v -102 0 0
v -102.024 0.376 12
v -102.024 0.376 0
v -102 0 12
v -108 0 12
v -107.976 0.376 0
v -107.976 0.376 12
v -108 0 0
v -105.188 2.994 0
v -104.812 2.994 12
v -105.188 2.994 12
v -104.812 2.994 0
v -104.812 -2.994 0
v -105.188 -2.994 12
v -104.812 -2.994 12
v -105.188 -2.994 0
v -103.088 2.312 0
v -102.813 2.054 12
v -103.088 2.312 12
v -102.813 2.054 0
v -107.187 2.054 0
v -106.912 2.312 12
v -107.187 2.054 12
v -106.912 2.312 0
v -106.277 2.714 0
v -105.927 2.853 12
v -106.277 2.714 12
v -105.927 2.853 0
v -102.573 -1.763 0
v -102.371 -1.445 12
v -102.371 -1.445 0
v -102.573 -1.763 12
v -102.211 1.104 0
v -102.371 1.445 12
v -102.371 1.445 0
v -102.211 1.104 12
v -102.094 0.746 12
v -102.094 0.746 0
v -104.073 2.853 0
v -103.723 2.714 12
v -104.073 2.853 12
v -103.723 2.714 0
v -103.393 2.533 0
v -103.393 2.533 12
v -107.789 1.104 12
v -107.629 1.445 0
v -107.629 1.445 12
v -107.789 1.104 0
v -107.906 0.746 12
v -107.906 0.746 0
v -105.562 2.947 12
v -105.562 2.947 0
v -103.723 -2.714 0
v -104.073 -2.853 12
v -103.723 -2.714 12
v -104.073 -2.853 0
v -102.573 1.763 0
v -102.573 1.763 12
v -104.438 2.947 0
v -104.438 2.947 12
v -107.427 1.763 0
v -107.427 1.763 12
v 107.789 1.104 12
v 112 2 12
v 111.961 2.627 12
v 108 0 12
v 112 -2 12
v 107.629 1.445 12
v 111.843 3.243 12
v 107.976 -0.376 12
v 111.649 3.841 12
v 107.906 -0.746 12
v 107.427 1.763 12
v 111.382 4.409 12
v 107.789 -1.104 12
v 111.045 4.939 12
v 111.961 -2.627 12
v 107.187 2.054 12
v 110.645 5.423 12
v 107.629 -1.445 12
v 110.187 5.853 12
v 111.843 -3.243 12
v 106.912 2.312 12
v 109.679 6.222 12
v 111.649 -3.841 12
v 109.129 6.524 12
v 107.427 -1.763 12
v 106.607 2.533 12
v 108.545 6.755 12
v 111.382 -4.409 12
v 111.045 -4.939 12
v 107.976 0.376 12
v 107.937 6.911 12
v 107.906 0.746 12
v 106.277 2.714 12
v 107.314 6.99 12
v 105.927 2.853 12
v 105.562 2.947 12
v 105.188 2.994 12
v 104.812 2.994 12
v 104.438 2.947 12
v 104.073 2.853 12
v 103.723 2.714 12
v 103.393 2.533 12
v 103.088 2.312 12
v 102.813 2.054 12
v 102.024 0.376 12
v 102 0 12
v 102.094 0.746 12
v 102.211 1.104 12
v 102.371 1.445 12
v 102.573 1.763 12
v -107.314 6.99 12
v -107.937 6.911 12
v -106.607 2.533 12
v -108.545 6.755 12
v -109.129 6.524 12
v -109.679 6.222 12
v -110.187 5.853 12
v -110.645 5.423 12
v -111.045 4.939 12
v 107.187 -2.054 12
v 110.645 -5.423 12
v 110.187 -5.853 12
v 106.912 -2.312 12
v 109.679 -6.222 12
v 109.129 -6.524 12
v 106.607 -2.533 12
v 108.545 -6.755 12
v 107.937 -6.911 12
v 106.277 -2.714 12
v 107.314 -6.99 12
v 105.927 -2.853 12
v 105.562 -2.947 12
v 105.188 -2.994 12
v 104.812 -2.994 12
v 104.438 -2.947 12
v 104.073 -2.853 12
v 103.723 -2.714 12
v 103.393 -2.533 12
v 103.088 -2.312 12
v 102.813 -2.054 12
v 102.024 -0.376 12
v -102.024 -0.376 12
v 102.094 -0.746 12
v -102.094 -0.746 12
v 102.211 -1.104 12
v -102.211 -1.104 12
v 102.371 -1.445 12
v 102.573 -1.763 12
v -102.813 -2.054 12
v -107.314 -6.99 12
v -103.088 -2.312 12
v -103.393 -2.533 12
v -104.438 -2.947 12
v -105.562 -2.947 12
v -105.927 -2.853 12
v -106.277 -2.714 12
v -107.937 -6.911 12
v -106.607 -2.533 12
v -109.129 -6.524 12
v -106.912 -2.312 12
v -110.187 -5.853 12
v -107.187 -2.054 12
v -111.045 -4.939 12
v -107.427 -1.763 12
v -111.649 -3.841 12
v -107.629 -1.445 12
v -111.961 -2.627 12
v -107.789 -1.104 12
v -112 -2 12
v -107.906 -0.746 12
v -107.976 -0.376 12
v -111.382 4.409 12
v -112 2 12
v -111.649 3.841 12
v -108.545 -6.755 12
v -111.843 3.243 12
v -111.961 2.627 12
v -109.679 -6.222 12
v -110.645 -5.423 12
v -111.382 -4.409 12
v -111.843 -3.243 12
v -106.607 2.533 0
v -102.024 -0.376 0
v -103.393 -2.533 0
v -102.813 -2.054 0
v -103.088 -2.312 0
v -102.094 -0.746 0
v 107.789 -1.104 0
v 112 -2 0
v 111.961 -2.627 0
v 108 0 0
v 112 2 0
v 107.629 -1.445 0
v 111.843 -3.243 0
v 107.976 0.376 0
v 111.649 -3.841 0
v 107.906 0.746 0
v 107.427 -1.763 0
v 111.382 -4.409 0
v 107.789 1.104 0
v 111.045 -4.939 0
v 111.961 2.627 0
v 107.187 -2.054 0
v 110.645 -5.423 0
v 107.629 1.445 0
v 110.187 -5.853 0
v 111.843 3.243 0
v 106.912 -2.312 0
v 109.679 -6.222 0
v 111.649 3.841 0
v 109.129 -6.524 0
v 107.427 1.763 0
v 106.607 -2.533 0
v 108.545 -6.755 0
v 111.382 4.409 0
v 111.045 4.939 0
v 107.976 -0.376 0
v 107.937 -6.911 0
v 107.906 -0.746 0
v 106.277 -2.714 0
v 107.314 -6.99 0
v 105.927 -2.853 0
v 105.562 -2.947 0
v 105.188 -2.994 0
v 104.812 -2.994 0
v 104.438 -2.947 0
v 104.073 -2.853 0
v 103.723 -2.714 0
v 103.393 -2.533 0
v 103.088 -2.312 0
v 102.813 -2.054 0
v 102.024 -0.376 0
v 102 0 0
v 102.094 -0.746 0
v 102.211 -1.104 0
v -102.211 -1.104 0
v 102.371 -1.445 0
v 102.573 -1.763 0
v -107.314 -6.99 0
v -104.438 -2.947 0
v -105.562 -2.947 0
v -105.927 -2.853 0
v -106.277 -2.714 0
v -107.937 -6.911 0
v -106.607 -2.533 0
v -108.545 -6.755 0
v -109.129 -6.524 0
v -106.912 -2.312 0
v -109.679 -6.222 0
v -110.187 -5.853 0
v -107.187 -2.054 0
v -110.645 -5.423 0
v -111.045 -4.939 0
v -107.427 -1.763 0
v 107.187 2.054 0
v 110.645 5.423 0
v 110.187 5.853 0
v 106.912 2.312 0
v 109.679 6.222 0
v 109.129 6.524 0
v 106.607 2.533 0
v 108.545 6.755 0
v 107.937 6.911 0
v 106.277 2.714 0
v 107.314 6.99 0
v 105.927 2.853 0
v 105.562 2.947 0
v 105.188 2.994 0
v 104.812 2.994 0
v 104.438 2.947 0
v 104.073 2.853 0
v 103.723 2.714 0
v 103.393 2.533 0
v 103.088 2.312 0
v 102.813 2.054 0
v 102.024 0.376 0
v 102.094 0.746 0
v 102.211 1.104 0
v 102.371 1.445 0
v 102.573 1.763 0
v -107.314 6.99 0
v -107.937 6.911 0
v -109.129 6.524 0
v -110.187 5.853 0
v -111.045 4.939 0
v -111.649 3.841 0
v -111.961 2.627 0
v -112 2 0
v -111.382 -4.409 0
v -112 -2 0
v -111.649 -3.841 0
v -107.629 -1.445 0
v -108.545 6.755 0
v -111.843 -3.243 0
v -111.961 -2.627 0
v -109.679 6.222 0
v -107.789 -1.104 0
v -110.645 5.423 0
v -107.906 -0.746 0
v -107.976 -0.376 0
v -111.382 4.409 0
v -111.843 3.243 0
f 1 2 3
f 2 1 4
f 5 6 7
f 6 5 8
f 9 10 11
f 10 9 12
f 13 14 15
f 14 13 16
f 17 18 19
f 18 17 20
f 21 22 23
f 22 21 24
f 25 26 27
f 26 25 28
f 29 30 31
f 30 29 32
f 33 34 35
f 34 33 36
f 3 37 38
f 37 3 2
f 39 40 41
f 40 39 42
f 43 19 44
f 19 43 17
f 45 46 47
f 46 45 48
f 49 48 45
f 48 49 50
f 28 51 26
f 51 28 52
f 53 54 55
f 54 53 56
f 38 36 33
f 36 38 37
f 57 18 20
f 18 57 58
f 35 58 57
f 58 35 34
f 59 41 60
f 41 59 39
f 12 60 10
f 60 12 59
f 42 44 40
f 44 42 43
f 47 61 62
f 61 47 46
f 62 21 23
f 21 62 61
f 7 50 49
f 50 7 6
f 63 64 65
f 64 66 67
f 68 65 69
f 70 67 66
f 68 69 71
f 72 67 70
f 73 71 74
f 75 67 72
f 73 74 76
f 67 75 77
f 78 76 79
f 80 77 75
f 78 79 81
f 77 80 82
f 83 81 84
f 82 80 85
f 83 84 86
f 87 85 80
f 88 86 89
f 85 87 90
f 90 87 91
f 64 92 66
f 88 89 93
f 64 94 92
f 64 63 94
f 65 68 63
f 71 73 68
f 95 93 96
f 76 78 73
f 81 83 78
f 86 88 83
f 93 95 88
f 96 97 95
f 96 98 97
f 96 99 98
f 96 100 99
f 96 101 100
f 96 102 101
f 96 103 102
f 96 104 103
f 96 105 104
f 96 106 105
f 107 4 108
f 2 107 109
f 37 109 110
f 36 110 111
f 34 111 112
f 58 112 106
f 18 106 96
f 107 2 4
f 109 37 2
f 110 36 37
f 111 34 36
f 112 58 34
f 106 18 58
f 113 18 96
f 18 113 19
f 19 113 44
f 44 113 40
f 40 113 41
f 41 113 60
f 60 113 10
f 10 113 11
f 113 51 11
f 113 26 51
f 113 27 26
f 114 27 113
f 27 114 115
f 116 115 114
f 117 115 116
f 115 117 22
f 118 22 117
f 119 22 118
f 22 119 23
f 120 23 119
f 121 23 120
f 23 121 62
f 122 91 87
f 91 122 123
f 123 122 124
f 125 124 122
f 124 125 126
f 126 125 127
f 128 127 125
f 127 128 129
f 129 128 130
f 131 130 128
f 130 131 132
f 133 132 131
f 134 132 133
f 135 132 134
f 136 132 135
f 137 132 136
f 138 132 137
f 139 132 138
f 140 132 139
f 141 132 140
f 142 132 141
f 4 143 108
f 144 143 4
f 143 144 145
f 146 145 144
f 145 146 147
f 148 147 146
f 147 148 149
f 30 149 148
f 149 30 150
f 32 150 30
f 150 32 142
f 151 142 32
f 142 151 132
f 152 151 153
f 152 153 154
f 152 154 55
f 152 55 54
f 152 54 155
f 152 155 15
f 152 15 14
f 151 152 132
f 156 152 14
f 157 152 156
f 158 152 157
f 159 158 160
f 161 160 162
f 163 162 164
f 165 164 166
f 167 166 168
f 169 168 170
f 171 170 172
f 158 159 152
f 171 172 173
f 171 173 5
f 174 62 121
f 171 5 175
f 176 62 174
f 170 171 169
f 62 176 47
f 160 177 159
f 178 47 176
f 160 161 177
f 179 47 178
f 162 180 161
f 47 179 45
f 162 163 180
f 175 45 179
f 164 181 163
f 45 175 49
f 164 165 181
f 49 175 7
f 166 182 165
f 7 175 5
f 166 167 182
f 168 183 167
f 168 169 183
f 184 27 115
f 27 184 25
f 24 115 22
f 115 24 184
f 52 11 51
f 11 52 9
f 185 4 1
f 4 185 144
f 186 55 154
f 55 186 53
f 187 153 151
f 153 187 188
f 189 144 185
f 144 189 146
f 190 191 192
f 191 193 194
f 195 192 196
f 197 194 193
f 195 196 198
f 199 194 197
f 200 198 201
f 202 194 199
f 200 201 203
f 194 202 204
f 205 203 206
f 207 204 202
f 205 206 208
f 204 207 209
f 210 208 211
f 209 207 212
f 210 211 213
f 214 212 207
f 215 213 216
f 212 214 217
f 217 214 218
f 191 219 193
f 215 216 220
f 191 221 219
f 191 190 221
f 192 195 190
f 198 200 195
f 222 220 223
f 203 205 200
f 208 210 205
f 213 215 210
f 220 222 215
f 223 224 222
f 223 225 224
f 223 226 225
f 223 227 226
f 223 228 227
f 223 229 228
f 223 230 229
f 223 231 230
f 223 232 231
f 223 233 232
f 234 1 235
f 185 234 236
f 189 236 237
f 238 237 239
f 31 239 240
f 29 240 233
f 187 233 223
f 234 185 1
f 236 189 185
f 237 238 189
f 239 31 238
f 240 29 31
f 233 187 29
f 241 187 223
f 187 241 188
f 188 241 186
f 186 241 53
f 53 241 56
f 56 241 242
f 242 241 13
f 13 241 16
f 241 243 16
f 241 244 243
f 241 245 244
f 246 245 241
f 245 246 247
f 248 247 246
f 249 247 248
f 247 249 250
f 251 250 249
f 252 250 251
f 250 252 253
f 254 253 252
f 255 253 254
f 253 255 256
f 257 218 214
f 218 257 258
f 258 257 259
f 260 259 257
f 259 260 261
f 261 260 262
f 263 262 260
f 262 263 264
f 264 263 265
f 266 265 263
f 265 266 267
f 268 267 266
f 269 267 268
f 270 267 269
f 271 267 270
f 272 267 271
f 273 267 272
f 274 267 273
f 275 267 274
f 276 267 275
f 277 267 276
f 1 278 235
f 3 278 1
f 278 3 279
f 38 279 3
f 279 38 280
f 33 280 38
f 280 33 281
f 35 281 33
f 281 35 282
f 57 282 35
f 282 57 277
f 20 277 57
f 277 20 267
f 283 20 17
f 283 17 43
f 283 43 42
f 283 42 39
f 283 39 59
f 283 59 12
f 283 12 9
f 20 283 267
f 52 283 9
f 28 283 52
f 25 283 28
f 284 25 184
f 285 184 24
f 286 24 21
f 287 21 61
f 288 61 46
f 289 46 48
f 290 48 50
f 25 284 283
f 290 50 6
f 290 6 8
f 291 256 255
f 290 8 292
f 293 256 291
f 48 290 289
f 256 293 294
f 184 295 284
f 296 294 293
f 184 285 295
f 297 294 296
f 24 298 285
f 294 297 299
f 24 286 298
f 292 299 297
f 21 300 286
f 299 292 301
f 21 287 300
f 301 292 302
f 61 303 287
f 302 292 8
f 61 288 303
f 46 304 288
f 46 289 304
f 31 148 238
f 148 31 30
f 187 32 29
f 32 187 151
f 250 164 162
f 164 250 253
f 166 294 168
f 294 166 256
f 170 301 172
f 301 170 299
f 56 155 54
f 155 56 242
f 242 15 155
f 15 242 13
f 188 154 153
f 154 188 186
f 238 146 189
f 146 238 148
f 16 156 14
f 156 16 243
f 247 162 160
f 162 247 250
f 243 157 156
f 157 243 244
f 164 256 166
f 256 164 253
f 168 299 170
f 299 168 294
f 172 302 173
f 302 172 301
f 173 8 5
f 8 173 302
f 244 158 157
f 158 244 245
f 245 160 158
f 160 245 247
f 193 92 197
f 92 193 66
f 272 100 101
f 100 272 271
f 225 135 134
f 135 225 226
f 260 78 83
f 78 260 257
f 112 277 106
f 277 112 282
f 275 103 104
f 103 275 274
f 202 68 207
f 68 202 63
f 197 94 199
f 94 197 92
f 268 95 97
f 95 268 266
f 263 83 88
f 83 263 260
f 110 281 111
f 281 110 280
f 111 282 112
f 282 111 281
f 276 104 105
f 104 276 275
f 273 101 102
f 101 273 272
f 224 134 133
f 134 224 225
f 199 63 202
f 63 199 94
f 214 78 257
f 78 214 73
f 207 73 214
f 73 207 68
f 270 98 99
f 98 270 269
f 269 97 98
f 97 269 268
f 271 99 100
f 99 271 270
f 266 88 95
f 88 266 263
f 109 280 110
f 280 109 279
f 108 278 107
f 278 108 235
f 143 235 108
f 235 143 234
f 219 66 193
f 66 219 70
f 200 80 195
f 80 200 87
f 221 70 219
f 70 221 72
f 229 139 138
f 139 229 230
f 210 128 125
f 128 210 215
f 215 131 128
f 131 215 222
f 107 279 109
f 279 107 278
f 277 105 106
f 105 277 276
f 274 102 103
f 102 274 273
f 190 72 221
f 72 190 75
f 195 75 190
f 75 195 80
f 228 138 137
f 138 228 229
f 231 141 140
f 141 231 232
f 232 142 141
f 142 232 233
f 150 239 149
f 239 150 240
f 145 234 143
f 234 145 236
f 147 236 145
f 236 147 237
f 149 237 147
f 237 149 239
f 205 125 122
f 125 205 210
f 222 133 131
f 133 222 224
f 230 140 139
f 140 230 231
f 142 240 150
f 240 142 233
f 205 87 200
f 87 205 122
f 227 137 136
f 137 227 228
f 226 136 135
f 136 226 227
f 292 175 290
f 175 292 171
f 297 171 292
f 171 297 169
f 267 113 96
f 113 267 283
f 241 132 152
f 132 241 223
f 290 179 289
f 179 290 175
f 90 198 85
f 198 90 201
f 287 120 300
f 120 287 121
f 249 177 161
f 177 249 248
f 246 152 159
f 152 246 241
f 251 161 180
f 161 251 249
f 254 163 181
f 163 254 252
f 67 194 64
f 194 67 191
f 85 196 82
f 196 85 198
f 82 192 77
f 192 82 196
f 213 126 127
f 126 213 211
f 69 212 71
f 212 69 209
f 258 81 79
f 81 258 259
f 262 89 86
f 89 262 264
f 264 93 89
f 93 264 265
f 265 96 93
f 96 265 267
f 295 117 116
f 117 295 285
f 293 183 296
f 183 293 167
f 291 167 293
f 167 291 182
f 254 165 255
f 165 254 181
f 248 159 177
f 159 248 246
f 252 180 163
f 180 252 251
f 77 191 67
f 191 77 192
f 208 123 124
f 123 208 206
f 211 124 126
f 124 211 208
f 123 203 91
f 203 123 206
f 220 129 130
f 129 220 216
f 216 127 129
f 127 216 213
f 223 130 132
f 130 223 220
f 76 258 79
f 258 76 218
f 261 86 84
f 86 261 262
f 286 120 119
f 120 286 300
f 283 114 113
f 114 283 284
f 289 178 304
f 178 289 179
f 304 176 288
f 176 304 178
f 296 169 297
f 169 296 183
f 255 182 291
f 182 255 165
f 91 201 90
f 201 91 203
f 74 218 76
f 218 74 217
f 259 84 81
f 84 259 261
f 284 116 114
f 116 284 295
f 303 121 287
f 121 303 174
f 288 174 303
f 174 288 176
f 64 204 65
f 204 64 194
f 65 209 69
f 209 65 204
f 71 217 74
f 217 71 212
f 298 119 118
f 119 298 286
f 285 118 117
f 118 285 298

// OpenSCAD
$fn = 50;


difference() {
	union() {
		hull() {
			translate(v = [-107.0000000000, 2.0000000000, 0]) {
				cylinder(h = 12, r = 5);
			}
			translate(v = [107.0000000000, 2.0000000000, 0]) {
				cylinder(h = 12, r = 5);
			}
			translate(v = [-107.0000000000, -2.0000000000, 0]) {
				cylinder(h = 12, r = 5);
			}
			translate(v = [107.0000000000, -2.0000000000, 0]) {
				cylinder(h = 12, r = 5);
			}
		}
	}
	union() {
		translate(v = [-105.0000000000, 0.0000000000, -100.0000000000]) {
			cylinder(h = 200, r = 3.0000000000);
		}
		translate(v = [-105.0000000000, 0.0000000000, -100.0000000000]) {
			cylinder(h = 200, r = 3.0000000000);
		}
		translate(v = [105.0000000000, 0.0000000000, -100.0000000000]) {
			cylinder(h = 200, r = 3.0000000000);
		}
		translate(v = [105.0000000000, 0.0000000000, -100.0000000000]) {
			cylinder(h = 200, r = 3.0000000000);
		}
	}
}
